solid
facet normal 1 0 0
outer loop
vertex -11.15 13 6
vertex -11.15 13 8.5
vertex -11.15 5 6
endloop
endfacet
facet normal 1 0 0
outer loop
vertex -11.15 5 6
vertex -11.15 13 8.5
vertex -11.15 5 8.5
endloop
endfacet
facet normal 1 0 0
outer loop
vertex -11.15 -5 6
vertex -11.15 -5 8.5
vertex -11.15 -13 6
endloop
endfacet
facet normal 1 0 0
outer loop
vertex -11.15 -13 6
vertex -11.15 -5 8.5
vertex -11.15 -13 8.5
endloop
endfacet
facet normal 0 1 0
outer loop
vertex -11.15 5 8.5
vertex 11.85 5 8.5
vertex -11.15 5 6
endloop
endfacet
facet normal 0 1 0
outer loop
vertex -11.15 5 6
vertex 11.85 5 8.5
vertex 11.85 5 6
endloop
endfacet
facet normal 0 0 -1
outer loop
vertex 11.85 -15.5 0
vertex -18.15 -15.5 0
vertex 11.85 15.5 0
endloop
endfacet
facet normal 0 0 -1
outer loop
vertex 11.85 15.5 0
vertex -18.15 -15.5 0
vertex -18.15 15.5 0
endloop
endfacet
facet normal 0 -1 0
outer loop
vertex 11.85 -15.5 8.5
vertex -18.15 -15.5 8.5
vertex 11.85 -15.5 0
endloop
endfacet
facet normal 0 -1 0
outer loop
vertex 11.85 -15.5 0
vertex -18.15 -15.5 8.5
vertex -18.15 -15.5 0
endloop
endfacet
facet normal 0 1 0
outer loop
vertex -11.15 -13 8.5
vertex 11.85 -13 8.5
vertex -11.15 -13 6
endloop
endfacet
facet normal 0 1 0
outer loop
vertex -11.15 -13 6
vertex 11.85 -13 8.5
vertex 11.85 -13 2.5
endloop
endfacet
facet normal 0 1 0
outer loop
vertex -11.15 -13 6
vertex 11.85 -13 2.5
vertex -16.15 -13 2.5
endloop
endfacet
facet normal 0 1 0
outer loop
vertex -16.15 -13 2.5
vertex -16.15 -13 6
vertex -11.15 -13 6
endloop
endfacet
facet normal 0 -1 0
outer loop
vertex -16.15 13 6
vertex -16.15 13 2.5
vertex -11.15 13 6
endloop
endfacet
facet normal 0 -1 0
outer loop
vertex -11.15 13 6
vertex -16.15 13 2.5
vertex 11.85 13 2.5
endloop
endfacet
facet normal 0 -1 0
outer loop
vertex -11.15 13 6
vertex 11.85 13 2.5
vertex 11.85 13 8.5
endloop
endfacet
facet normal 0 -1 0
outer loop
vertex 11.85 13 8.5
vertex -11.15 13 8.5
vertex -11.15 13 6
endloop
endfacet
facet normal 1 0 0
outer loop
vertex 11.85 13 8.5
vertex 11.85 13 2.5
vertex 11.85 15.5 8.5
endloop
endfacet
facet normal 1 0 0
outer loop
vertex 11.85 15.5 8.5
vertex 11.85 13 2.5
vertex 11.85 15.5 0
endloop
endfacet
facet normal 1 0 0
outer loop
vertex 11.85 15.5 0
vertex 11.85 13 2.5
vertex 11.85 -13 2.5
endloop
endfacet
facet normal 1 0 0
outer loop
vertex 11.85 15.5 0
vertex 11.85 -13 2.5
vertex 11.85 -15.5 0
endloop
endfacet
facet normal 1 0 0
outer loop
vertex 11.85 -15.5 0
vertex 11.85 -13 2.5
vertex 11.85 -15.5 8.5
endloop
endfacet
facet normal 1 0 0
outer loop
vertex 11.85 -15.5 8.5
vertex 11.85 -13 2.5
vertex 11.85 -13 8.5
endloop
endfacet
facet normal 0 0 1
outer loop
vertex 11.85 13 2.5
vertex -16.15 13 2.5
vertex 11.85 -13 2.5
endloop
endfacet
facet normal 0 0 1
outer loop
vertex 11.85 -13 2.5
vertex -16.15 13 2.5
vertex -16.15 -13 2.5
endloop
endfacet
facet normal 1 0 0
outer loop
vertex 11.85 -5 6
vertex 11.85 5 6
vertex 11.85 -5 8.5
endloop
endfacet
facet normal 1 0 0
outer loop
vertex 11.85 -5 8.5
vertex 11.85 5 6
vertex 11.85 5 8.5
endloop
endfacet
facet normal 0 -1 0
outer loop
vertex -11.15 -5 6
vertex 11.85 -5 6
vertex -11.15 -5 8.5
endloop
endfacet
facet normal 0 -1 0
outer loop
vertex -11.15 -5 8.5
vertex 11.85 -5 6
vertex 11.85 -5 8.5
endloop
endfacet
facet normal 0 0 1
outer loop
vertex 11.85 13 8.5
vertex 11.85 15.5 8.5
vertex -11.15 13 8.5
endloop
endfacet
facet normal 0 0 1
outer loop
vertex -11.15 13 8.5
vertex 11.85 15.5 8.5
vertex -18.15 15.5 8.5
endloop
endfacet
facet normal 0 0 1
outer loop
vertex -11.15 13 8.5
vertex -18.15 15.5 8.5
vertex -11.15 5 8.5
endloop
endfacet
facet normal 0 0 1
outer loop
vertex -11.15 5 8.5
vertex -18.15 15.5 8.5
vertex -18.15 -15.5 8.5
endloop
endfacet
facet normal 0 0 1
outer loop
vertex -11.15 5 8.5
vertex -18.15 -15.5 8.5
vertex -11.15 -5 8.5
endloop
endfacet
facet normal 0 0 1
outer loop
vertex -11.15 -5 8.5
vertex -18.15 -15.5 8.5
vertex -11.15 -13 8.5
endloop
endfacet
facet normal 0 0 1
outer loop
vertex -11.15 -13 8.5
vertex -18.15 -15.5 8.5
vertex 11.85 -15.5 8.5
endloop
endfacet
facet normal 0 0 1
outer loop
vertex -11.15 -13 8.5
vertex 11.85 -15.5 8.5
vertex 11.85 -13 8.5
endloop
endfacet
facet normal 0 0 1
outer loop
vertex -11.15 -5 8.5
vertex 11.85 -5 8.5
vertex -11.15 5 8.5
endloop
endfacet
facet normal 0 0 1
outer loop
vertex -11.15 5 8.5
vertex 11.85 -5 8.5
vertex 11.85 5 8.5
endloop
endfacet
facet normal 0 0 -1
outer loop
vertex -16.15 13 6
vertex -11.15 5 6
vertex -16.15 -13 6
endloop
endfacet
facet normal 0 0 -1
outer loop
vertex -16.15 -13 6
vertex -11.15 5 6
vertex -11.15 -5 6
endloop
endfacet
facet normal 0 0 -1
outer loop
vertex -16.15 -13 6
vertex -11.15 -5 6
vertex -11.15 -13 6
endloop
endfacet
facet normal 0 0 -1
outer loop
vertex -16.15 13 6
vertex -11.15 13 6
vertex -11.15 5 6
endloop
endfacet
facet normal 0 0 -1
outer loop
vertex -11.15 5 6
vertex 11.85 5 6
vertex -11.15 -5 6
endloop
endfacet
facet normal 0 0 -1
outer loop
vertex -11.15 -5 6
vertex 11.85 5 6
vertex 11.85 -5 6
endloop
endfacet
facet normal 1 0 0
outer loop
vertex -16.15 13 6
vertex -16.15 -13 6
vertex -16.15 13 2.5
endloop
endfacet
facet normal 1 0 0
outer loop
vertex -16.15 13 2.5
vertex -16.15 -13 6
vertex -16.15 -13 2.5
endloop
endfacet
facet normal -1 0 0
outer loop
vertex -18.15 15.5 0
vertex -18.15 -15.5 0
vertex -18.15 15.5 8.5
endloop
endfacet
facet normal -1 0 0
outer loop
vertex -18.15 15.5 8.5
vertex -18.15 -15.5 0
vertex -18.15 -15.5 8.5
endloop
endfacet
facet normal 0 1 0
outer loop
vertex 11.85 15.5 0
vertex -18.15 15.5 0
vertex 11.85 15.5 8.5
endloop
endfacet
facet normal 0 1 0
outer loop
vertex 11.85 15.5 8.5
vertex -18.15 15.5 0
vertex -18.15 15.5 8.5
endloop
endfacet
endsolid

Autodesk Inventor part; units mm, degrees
sketch "Sketch1" plane through (0, 0, 0) normal (0, 0, 1) x (1, 0, 0)
  line L0 (0, 2.8582) -> (0, -2.8582) construction
  line L1 (-5.7775, 0) -> (5.7775, 0) construction
  line L2 (-18.15, -15.5) -> (18.15, -15.5)
  line L3 (18.15, -15.5) -> (18.15, 15.5)
  line L4 (18.15, 15.5) -> (-18.15, 15.5)
  line L5 (-18.15, 15.5) -> (-18.15, -15.5)
  line L6 (-18.15, -15.5) -> (18.15, 15.5) construction
  line L7 (18.15, -15.5) -> (-18.15, 15.5) construction
  point P0 (0, 0)
  point P1 (0, 0)
  dimension "d0" = 36.3
  dimension "d1" = 31
extrude "Extrusion1" add sketch "Sketch1" along normal blind 2.5
sketch "Sketch2" plane through (0, 0, 2.5) normal (0, 0, 1) x (1, 0, 0)
  line L0 (18.15, -15.5) -> (-18.15, -15.5) projected
  line L1 (-18.15, -15.5) -> (-18.15, 15.5) projected
  line L2 (-18.15, 15.5) -> (18.15, 15.5) projected
  line L3 (18.15, 15.5) -> (18.15, -15.5) projected
  line L4 (-18.15, 15.5) -> (-16.15, 15.5)
  line L5 (-16.15, 15.5) -> (-16.15, -15.5)
  line L6 (-16.15, -15.5) -> (-18.15, -15.5)
  line L7 (-18.15, -15.5) -> (-18.15, 15.5)
  point P0 (0, 0)
  dimension "d4" = 2
extrude "Extrusion2" add sketch "Sketch2" along normal blind 3.5 contours L0 L1 L2 L5
sketch "Sketch3" plane through (0, 0, 6) normal (0, 0, 1) x (1, 0, 0)
  line L0 (-16.15, 15.5) -> (-16.15, -15.5) projected
  line L1 (-16.15, -15.5) -> (-18.15, -15.5) projected
  line L2 (-18.15, -15.5) -> (-18.15, 15.5) projected
  line L3 (-18.15, 15.5) -> (-16.15, 15.5) projected
  line L4 (-18.15, 5) -> (11.85, 5)
  line L5 (11.85, 5) -> (11.85, -5)
  line L6 (11.85, -5) -> (-18.15, -5)
  line L7 (-18.15, -5) -> (-18.15, 5)
  line L8 (-25.41, 0) -> (25.41, 0) projected
  point P0 (0, 0)
  point P1 (-16.15, 5)
  point P2 (-16.15, -5)
  dimension "d7" = 10
  dimension "d8" = 5
  dimension "d9" = 30
extrude "Extrusion3" add sketch "Sketch3" along normal blind 2.5
sketch "Sketch4" plane through (0, 0, 2.5) normal (0, 0, 1) x (1, 0, 0)
  line L0 (-16.15, 15.5) -> (-16.15, -15.5) projected
  line L1 (18.15, -15.5) -> (-16.15, -15.5) projected
  line L2 (18.15, 15.5) -> (18.15, -15.5) projected
  line L3 (-16.15, 15.5) -> (18.15, 15.5) projected
  line L4 (-18.15, 15.5) -> (-16.15, 15.5) projected
  line L5 (-18.15, -15.5) -> (-18.15, 15.5) projected
  line L6 (-16.15, -15.5) -> (-18.15, -15.5) projected
  line L7 (-16.15, 15.5) -> (11.85, 15.5)
  line L8 (11.85, 15.5) -> (11.85, 13)
  line L9 (11.85, 13) -> (-16.15, 13)
  line L10 (-16.15, 13) -> (-16.15, 15.5)
  line L11 (-16.15, -15.5) -> (11.85, -15.5)
  line L12 (11.85, -15.5) -> (11.85, -13)
  line L13 (11.85, -13) -> (-16.15, -13)
  line L14 (-16.15, -13) -> (-16.15, -15.5)
  point P0 (18.15, 13.5)
  point P1 (11.85, -15.5)
  point P2 (11.85, 15.5)
  dimension "d16" = 2.5
  dimension "d17" = 6.3
  dimension "d18" = 6.3
  dimension "d19" = 2.5
extrude "Extrusion4" add sketch "Sketch4" along normal up to surface (6 mm away) contours L3 L8 L9 L0 | L13 L12 L1 L0
sketch "Sketch5" plane through (0, 0, 2.5) normal (0, 0, 1) x (1, 0, 0)
  line L0 (11.85, 13) -> (-16.15, 13) projected
  line L1 (-16.15, -13) -> (-16.15, 13) projected
  line L2 (-16.15, -13) -> (11.85, -13) projected
  line L3 (11.85, -13) -> (11.85, -15.5) projected
  line L4 (18.15, -15.5) -> (11.85, -15.5) projected
  line L5 (18.15, 15.5) -> (18.15, -15.5) projected
  line L6 (11.85, 15.5) -> (18.15, 15.5) projected
  line L7 (11.85, 15.5) -> (11.85, 13) projected
  line L8 (11.85, -15.5) -> (-18.15, -15.5) projected
  line L9 (-18.15, -15.5) -> (-18.15, 15.5) projected
  line L10 (-18.15, 15.5) -> (11.85, 15.5) projected
  line L11 (18.15, -15.5) -> (11.85, -15.5)
  line L12 (11.85, -15.5) -> (11.85, 15.5)
  line L13 (11.85, 15.5) -> (18.15, 15.5)
  line L14 (18.15, 15.5) -> (18.15, -15.5)
  point P0 (0, 0)
extrude "Extrusion5" cut sketch "Sketch5" against normal up to surface (2.5 mm away) contours L7 L6 L5 L4 L3 L12
sketch "Sketch6" plane through (-16.15, -5, 6) normal (1, 0, 0) x (0, 0, -1)
  line L0 (0, 0) -> (-2.5, 0) projected
  line L1 (-2.5, -8) -> (-2.5, 0) projected
  line L2 (-2.5, -10.5) -> (-2.5, -8) projected
  line L3 (6, -10.5) -> (-2.5, -10.5) projected
  line L4 (6, 20.5) -> (6, -10.5) projected
  line L5 (-2.5, 20.5) -> (6, 20.5) projected
  line L6 (-2.5, 18) -> (-2.5, 20.5) projected
  line L7 (-2.5, 10) -> (-2.5, 18) projected
  line L8 (-2.5, 0) -> (-2.5, 10) projected
  line L9 (0, 10) -> (0, 0) projected
  line L10 (-2.5, 10) -> (0, 10) projected
  line L11 (-2.5, -8) -> (3.5, -8) projected
  line L12 (3.5, -8) -> (3.5, 18) projected
  line L13 (3.5, 18) -> (-2.5, 18) projected
  line L14 (0, 0) -> (-2.5, 0)
  line L15 (-2.5, 0) -> (-2.5, -8)
  line L16 (-2.5, -8) -> (0, -8)
  line L17 (0, -8) -> (0, 0)
  line L18 (-2.5, 10) -> (-2.5, 18) projected
  line L19 (0, 10) -> (-2.5, 10)
  line L20 (-2.5, 10) -> (-2.5, 18)
  line L21 (-2.5, 18) -> (0, 18)
  line L22 (0, 18) -> (0, 10)
  point P0 (6, 5)
extrude "Extrusion6" add sketch "Sketch6" along normal blind 5 contours L17 L11 L1 L0 | L10 L7 L13 L22
equation "\"d8\" = 0.5 * d7"
equation "\"d18\" = d17"
equation "\"d19\" = d16"
properties part number "LOLIN C3 Mini Holder" material "S235"
